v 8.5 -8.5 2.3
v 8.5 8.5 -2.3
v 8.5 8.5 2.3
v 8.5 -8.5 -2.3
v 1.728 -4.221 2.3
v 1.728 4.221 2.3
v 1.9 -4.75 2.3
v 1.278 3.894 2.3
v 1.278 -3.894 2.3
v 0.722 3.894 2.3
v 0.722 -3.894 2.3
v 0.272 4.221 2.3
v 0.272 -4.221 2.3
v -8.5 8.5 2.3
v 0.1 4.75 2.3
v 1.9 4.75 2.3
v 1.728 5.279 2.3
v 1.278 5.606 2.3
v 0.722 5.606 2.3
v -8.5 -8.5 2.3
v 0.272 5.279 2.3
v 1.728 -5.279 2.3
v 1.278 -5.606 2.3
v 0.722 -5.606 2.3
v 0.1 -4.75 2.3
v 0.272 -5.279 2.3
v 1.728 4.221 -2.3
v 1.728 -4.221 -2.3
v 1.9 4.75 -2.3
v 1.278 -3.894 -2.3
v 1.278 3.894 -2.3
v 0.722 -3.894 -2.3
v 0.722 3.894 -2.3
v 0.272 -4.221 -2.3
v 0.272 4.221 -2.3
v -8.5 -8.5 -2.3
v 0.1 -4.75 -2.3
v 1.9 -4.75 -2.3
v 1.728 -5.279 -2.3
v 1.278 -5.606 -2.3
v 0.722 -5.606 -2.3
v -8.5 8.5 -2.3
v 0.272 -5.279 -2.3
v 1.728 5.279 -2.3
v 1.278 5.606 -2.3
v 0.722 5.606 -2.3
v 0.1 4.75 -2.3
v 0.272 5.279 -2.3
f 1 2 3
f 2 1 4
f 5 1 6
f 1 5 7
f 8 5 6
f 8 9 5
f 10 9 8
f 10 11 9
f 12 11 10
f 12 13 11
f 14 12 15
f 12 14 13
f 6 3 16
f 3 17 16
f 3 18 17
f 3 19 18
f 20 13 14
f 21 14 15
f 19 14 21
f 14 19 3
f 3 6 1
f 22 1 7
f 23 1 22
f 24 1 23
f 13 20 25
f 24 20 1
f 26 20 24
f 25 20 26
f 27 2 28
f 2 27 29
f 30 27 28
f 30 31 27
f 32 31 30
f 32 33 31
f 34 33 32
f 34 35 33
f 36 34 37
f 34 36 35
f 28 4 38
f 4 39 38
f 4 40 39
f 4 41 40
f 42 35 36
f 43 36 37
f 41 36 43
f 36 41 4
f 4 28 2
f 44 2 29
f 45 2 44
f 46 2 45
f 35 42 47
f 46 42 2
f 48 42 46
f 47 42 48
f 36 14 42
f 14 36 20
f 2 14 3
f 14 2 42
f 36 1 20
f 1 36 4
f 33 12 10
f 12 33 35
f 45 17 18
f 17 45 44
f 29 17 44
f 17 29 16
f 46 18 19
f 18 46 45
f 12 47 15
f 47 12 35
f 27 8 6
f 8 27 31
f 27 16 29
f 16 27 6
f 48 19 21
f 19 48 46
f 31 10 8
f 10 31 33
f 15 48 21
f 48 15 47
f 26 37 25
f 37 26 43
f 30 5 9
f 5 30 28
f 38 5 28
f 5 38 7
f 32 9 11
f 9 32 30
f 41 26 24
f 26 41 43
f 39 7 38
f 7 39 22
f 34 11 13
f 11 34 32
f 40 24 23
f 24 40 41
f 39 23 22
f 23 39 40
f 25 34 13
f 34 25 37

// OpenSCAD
difference() {
    cube([17, 17, 4.6], center=true);

    translate([17/2 - 7.5, 9.5/2, 0])
    cylinder(d=1.8, h=20, center=true, $fn=10);

    translate([17/2 - 7.5, -9.5/2, 0])
    cylinder(d=1.8, h=20, center=true, $fn=10);

}
